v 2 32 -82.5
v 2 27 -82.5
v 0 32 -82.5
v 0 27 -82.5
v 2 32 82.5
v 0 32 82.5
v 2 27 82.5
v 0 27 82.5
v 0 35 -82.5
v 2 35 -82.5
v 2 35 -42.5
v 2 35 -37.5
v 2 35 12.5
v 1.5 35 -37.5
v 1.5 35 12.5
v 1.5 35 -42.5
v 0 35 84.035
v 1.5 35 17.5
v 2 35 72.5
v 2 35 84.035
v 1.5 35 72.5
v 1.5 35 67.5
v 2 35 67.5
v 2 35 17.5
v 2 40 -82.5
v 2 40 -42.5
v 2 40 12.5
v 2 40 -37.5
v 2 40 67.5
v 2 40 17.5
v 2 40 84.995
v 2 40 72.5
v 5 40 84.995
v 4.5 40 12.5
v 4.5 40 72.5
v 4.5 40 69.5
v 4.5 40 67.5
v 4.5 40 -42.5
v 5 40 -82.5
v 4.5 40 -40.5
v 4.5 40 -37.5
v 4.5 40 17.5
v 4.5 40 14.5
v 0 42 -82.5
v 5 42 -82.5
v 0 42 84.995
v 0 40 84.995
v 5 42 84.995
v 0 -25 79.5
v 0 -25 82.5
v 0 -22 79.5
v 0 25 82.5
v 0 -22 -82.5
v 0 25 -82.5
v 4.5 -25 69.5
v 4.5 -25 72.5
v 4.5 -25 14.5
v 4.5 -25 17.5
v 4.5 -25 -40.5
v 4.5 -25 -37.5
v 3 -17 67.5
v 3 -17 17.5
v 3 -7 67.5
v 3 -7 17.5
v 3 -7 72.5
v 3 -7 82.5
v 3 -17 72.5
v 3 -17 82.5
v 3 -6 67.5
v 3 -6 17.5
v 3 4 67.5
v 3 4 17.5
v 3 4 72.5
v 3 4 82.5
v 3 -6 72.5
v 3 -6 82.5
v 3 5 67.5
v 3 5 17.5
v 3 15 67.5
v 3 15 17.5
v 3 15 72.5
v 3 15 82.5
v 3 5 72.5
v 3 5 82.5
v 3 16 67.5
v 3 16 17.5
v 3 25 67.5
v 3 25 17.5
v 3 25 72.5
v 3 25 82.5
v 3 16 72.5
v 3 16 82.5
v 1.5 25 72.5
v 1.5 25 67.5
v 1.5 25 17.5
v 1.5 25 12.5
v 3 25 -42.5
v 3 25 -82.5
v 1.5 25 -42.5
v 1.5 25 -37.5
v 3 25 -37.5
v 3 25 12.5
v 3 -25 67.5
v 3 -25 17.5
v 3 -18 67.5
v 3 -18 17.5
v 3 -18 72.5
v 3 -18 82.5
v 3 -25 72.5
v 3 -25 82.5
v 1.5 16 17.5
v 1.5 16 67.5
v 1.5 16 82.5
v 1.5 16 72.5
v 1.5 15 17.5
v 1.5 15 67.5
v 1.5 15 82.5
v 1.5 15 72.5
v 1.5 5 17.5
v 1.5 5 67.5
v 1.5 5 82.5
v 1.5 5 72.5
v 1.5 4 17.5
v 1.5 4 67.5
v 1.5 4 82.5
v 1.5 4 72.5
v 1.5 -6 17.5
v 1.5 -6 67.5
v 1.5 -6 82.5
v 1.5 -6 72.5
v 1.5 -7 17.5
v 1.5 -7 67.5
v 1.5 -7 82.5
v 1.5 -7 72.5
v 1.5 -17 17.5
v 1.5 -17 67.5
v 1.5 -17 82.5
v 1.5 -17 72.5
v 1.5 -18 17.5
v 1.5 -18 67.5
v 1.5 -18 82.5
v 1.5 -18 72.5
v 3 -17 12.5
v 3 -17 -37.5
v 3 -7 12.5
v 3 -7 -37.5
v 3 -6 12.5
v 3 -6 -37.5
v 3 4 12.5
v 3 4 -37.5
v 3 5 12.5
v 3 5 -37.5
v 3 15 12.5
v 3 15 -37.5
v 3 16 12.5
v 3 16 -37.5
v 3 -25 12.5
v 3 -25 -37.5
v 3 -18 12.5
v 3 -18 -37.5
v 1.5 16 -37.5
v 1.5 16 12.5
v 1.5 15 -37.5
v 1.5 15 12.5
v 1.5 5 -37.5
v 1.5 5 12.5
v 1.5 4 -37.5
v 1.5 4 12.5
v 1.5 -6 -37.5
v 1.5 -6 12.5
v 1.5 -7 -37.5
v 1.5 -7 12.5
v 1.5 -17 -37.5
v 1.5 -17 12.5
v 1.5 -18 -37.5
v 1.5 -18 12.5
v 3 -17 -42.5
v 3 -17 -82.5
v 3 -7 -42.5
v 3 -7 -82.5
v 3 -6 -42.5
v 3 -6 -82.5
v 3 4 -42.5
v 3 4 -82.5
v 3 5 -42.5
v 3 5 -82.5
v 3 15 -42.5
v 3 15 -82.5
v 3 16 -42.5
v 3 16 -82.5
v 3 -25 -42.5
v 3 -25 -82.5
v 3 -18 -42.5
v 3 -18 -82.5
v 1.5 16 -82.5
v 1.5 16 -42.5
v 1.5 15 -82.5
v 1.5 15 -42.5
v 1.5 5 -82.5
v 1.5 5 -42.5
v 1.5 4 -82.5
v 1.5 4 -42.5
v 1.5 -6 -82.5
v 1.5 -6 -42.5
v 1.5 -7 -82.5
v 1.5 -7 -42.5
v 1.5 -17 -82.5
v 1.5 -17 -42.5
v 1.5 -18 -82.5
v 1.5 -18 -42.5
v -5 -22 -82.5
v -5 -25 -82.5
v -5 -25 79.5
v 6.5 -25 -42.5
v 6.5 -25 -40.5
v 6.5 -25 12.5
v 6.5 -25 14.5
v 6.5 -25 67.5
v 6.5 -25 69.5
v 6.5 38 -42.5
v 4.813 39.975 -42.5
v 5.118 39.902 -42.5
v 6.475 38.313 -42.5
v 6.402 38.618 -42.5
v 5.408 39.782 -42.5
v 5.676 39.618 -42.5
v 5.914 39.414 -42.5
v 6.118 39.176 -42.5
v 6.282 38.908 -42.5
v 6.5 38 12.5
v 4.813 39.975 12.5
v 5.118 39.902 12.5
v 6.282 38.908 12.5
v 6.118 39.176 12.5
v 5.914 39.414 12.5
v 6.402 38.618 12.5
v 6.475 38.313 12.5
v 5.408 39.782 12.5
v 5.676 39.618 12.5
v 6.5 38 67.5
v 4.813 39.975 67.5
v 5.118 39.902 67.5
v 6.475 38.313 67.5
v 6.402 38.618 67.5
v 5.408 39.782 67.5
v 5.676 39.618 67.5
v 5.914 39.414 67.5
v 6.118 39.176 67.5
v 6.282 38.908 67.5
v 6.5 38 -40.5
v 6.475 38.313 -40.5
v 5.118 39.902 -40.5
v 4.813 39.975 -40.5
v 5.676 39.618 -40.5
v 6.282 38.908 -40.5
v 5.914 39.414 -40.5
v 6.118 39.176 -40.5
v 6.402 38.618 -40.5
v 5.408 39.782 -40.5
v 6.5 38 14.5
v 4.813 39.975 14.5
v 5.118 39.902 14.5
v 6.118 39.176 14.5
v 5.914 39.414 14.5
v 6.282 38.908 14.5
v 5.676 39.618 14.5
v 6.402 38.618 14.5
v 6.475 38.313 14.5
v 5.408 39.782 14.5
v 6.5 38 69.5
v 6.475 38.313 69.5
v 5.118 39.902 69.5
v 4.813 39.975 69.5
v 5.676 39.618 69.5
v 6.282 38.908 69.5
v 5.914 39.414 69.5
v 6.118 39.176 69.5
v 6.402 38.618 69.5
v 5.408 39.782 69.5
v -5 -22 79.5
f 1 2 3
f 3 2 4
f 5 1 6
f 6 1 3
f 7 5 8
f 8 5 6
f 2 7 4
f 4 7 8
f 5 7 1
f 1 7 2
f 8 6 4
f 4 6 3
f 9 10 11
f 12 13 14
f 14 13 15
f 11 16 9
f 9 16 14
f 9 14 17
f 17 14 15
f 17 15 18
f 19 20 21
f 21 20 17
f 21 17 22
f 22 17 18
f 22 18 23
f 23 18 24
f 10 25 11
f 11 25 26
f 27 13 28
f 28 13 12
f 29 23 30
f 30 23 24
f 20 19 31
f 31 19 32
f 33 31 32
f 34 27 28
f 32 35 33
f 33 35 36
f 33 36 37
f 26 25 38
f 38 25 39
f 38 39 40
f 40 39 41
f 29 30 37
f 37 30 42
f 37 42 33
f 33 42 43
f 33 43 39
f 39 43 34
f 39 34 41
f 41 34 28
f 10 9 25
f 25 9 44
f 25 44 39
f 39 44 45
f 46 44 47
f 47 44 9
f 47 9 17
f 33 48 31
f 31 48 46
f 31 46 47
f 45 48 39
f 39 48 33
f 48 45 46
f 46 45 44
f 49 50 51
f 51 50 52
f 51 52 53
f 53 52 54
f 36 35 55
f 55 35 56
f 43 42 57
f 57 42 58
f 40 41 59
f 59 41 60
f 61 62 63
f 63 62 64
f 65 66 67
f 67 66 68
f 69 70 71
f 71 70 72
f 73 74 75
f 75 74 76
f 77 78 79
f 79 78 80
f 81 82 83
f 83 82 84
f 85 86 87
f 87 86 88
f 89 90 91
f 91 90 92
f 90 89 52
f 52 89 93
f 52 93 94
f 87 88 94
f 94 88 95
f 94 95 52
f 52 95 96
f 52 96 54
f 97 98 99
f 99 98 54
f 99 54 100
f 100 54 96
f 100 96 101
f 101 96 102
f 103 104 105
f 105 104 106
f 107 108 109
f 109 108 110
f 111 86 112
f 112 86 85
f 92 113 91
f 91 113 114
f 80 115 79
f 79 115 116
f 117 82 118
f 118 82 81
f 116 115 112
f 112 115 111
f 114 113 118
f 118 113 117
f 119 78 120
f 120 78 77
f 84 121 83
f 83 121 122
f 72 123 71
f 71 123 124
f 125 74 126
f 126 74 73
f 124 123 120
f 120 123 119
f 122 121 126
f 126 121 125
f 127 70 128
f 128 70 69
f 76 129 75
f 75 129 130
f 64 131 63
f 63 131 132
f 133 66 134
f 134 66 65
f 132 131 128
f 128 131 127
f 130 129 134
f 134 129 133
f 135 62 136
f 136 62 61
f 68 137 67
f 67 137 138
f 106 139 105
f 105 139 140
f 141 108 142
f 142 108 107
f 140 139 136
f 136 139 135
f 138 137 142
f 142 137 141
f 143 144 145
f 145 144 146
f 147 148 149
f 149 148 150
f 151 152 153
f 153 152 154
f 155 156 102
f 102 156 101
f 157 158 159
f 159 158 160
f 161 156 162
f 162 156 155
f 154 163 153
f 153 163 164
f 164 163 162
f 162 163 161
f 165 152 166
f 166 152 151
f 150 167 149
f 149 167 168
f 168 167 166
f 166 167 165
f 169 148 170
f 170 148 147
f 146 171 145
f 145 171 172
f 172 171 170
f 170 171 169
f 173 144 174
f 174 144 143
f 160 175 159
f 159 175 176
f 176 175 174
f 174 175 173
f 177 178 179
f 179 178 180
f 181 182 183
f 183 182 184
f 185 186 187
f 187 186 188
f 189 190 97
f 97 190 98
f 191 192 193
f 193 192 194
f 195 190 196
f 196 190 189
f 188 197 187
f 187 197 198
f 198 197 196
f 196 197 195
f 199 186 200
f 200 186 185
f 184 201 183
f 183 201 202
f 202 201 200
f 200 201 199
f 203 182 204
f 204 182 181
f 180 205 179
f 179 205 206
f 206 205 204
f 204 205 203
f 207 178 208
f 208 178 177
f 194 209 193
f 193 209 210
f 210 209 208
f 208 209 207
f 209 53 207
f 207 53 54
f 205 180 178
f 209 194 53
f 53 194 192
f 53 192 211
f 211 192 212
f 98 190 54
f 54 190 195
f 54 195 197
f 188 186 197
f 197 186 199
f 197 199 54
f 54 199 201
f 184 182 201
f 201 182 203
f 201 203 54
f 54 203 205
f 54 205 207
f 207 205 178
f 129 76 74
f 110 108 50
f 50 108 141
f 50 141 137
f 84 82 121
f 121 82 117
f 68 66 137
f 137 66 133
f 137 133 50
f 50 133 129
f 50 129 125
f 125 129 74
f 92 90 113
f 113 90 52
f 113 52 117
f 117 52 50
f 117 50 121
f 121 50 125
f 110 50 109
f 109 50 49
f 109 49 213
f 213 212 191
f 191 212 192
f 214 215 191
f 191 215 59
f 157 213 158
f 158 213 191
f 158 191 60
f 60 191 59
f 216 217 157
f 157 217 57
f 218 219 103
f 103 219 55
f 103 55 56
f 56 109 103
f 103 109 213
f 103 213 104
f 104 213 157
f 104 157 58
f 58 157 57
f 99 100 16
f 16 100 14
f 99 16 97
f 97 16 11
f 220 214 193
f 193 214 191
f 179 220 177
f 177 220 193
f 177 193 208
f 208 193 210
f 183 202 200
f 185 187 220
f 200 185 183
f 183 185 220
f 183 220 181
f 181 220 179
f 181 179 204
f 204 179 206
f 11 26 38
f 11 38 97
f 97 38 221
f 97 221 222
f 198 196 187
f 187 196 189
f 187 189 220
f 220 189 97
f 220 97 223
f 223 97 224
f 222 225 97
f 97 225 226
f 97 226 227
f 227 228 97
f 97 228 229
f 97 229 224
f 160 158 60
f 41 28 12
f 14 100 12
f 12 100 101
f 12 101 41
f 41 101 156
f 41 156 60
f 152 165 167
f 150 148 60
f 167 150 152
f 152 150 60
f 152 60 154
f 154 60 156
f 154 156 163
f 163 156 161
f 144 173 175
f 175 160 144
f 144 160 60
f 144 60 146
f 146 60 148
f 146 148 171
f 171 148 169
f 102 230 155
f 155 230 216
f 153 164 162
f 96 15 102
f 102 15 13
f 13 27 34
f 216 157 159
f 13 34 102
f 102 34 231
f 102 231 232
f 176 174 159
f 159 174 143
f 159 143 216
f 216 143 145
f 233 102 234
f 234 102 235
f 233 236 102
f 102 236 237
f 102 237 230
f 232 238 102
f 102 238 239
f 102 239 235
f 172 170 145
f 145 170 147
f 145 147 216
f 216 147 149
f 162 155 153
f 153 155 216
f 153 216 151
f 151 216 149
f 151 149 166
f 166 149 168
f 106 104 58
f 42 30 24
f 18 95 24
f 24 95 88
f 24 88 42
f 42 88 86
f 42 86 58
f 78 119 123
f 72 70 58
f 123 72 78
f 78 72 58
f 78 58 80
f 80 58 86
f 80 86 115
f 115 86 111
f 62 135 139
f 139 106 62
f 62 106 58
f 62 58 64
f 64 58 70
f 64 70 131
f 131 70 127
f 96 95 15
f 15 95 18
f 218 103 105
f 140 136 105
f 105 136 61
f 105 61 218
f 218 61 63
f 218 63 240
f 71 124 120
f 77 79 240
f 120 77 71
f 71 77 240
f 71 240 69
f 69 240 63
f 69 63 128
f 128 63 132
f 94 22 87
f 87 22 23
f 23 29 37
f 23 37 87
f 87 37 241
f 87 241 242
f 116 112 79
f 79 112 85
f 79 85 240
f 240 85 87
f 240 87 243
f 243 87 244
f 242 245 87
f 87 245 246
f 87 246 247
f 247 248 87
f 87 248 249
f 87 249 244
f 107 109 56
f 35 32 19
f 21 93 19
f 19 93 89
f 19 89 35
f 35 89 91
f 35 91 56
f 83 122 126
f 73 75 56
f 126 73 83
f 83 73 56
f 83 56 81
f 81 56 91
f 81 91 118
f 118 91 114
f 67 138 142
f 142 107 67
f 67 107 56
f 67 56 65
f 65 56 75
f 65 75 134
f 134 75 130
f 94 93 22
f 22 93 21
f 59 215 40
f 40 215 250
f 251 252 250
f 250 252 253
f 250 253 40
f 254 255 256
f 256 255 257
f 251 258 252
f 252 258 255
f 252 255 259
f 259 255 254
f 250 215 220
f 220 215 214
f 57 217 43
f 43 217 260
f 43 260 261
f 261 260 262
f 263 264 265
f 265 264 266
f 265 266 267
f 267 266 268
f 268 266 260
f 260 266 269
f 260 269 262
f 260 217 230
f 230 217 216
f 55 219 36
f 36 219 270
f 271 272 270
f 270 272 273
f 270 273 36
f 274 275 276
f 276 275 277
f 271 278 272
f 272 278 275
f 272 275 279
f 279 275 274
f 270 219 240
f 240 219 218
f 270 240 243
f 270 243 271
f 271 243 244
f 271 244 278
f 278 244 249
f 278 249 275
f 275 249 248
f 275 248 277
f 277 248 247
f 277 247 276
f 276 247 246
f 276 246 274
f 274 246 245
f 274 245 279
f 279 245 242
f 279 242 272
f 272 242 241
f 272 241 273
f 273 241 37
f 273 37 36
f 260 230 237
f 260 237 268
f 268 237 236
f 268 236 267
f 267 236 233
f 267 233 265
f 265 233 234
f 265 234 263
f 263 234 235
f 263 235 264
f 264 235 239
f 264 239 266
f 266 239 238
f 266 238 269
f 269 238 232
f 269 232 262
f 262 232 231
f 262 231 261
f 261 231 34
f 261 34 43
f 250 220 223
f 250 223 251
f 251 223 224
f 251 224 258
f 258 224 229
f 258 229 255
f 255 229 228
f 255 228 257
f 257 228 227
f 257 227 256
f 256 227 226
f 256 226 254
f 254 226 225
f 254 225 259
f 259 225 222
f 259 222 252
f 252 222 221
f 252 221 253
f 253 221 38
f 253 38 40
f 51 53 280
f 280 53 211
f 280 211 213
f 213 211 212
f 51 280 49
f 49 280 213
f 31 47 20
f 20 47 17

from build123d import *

# Parameters (mm, degrees)
SKETCH1_W             = 165
SKETCH1_H             = 50
BOSS_EXTRUDE1_DEPTH   = 3
SKETCH2_W             = 165
SKETCH2_H             = 1
CUT_EXTRUDE1_DEPTH    = 1.5
SKETCH3_W             = 5
SKETCH3_H             = 65
BOSS_EXTRUDE2_DEPTH   = 1.5
SKETCH4_W             = 2
SKETCH4_H             = 65
BOSS_EXTRUDE3_DEPTH   = 2
FILLET1_R             = 2
SKETCH5_W             = 165
SKETCH5_H             = 5
BOSS_EXTRUDE4_DEPTH   = 2
SKETCH5_W_2           = 167.5
BOSS_EXTRUDE4_2_DEPTH = 2
SKETCH7_W             = 165
SKETCH7_H             = 3
BOSS_EXTRUDE5_DEPTH   = 5
SKETCH8_W             = 5
SKETCH8_H             = 167.494782264
BOSS_EXTRUDE6_DEPTH   = 2
SKETCH12_W            = 5
SKETCH12_H            = 3
CUT_EXTRUDE3_DEPTH    = 3
CUT_EXTRUDE5_DEPTH    = 10


with BuildPart() as part:
    # Sketch1 → Boss-Extrude1 (new body)
    with BuildSketch(Plane(origin=(0, 0, 0), x_dir=(0, 0, -1), z_dir=(1, 0, 0))):
        Rectangle(SKETCH1_W, SKETCH1_H)
    extrude(amount=BOSS_EXTRUDE1_DEPTH)

    # Sketch2 → Cut-Extrude1 (cut)
    with BuildSketch(Plane(origin=(3, 0, 0), x_dir=(0, 0, -1), z_dir=(1, 0, 0))):
        with Locations((0, -17.5)):
            Rectangle(SKETCH2_W, SKETCH2_H)
        with Locations((0, -6.5)):
            Rectangle(SKETCH2_W, SKETCH2_H)
        with Locations((0, 4.5)):
            Rectangle(SKETCH2_W, SKETCH2_H)
        with Locations((0, 15.5)):
            Rectangle(SKETCH2_W, SKETCH2_H)
    extrude(amount=-CUT_EXTRUDE1_DEPTH, mode=Mode.SUBTRACT)

    # Sketch3 → Boss-Extrude2 (add, symmetric)
    with BuildSketch(Plane(origin=(3, 0, 0), x_dir=(0, 0, -1), z_dir=(1, 0, 0))):
        with Locations((-70, 7.5)):
            Rectangle(SKETCH3_W, SKETCH3_H)
        with Locations((40, 7.5)):
            Rectangle(SKETCH3_W, SKETCH3_H)
        with Locations((-15, 7.5)):
            Rectangle(SKETCH3_W, SKETCH3_H)
    extrude(amount=BOSS_EXTRUDE2_DEPTH, both=True)

    # Sketch4 → Boss-Extrude3 (add)
    with BuildSketch(Plane(origin=(4.5, 0, 0), x_dir=(0, 0, -1), z_dir=(1, 0, 0))):
        with Locations((41.5, 7.5)):
            Rectangle(SKETCH4_W, SKETCH4_H)
        with Locations((-13.5, 7.5)):
            Rectangle(SKETCH4_W, SKETCH4_H)
        with Locations((-68.5, 7.5)):
            Rectangle(SKETCH4_W, SKETCH4_H)
    extrude(amount=BOSS_EXTRUDE3_DEPTH)

    # Fillet1
    fillet1_edges = [part.edges().sort_by_distance(p)[0] for p in [
        (6.5, 40, 68.5),
        (6.5, 40, 13.5),
        (6.5, 40, -41.5),
    ]]
    fillet(fillet1_edges, radius=FILLET1_R)

    # Sketch7 → Boss-Extrude5 (add)
    with BuildSketch(Plane.ZY):
        with Locations((0, -23.5)):
            Rectangle(SKETCH7_W, SKETCH7_H)
    extrude(amount=BOSS_EXTRUDE5_DEPTH)



with BuildPart() as body_2:
    # Sketch5 → Boss-Extrude4 (new body)
    with BuildSketch(Plane.ZY):
        with Locations((0, 29.5)):
            Rectangle(SKETCH5_W, SKETCH5_H)
    extrude(amount=-BOSS_EXTRUDE4_DEPTH)


with BuildPart() as body_3:
    # Sketch5 → Boss-Extrude4 2 (new body)
    with BuildSketch(Plane.ZY):
        with Locations((1.25, 37.5)):
            Rectangle(SKETCH5_W_2, SKETCH5_H)
    extrude(amount=-BOSS_EXTRUDE4_2_DEPTH)


with BuildPart() as part_1:
    add(part.part)

    add(body_3.part)  # Boss-Extrude6 merges body 3
    # Sketch8 → Boss-Extrude6 (add)
    with BuildSketch(Plane(origin=(0, 40, 0), x_dir=(1, 0, 0), z_dir=(0, 1, 0))):
        with Locations((2.5, -1.247391132)):
            Rectangle(SKETCH8_W, SKETCH8_H)
    extrude(amount=BOSS_EXTRUDE6_DEPTH)

    # Sketch12 → Cut-Extrude3 (cut)
    with BuildSketch(Plane(origin=(0, -22, 0), x_dir=(1, 0, 0), z_dir=(0, 1, 0))):
        with Locations((-2.5, -81)):
            Rectangle(SKETCH12_W, SKETCH12_H)
    extrude(amount=-CUT_EXTRUDE3_DEPTH, mode=Mode.SUBTRACT)

    # Sketch13 → Cut-Extrude5 (cut)
    with BuildSketch(Plane(origin=(2, 0, 0), x_dir=(0, 0, -1), z_dir=(1, 0, 0))):
        Polygon((-82.5, 27), (-84.994782264, 40), (-86.356736261, 40), (-86.356736261, 27), align=None)
    extrude(amount=-CUT_EXTRUDE5_DEPTH, mode=Mode.SUBTRACT)


solid = Compound([body_2.part, part_1.part])
